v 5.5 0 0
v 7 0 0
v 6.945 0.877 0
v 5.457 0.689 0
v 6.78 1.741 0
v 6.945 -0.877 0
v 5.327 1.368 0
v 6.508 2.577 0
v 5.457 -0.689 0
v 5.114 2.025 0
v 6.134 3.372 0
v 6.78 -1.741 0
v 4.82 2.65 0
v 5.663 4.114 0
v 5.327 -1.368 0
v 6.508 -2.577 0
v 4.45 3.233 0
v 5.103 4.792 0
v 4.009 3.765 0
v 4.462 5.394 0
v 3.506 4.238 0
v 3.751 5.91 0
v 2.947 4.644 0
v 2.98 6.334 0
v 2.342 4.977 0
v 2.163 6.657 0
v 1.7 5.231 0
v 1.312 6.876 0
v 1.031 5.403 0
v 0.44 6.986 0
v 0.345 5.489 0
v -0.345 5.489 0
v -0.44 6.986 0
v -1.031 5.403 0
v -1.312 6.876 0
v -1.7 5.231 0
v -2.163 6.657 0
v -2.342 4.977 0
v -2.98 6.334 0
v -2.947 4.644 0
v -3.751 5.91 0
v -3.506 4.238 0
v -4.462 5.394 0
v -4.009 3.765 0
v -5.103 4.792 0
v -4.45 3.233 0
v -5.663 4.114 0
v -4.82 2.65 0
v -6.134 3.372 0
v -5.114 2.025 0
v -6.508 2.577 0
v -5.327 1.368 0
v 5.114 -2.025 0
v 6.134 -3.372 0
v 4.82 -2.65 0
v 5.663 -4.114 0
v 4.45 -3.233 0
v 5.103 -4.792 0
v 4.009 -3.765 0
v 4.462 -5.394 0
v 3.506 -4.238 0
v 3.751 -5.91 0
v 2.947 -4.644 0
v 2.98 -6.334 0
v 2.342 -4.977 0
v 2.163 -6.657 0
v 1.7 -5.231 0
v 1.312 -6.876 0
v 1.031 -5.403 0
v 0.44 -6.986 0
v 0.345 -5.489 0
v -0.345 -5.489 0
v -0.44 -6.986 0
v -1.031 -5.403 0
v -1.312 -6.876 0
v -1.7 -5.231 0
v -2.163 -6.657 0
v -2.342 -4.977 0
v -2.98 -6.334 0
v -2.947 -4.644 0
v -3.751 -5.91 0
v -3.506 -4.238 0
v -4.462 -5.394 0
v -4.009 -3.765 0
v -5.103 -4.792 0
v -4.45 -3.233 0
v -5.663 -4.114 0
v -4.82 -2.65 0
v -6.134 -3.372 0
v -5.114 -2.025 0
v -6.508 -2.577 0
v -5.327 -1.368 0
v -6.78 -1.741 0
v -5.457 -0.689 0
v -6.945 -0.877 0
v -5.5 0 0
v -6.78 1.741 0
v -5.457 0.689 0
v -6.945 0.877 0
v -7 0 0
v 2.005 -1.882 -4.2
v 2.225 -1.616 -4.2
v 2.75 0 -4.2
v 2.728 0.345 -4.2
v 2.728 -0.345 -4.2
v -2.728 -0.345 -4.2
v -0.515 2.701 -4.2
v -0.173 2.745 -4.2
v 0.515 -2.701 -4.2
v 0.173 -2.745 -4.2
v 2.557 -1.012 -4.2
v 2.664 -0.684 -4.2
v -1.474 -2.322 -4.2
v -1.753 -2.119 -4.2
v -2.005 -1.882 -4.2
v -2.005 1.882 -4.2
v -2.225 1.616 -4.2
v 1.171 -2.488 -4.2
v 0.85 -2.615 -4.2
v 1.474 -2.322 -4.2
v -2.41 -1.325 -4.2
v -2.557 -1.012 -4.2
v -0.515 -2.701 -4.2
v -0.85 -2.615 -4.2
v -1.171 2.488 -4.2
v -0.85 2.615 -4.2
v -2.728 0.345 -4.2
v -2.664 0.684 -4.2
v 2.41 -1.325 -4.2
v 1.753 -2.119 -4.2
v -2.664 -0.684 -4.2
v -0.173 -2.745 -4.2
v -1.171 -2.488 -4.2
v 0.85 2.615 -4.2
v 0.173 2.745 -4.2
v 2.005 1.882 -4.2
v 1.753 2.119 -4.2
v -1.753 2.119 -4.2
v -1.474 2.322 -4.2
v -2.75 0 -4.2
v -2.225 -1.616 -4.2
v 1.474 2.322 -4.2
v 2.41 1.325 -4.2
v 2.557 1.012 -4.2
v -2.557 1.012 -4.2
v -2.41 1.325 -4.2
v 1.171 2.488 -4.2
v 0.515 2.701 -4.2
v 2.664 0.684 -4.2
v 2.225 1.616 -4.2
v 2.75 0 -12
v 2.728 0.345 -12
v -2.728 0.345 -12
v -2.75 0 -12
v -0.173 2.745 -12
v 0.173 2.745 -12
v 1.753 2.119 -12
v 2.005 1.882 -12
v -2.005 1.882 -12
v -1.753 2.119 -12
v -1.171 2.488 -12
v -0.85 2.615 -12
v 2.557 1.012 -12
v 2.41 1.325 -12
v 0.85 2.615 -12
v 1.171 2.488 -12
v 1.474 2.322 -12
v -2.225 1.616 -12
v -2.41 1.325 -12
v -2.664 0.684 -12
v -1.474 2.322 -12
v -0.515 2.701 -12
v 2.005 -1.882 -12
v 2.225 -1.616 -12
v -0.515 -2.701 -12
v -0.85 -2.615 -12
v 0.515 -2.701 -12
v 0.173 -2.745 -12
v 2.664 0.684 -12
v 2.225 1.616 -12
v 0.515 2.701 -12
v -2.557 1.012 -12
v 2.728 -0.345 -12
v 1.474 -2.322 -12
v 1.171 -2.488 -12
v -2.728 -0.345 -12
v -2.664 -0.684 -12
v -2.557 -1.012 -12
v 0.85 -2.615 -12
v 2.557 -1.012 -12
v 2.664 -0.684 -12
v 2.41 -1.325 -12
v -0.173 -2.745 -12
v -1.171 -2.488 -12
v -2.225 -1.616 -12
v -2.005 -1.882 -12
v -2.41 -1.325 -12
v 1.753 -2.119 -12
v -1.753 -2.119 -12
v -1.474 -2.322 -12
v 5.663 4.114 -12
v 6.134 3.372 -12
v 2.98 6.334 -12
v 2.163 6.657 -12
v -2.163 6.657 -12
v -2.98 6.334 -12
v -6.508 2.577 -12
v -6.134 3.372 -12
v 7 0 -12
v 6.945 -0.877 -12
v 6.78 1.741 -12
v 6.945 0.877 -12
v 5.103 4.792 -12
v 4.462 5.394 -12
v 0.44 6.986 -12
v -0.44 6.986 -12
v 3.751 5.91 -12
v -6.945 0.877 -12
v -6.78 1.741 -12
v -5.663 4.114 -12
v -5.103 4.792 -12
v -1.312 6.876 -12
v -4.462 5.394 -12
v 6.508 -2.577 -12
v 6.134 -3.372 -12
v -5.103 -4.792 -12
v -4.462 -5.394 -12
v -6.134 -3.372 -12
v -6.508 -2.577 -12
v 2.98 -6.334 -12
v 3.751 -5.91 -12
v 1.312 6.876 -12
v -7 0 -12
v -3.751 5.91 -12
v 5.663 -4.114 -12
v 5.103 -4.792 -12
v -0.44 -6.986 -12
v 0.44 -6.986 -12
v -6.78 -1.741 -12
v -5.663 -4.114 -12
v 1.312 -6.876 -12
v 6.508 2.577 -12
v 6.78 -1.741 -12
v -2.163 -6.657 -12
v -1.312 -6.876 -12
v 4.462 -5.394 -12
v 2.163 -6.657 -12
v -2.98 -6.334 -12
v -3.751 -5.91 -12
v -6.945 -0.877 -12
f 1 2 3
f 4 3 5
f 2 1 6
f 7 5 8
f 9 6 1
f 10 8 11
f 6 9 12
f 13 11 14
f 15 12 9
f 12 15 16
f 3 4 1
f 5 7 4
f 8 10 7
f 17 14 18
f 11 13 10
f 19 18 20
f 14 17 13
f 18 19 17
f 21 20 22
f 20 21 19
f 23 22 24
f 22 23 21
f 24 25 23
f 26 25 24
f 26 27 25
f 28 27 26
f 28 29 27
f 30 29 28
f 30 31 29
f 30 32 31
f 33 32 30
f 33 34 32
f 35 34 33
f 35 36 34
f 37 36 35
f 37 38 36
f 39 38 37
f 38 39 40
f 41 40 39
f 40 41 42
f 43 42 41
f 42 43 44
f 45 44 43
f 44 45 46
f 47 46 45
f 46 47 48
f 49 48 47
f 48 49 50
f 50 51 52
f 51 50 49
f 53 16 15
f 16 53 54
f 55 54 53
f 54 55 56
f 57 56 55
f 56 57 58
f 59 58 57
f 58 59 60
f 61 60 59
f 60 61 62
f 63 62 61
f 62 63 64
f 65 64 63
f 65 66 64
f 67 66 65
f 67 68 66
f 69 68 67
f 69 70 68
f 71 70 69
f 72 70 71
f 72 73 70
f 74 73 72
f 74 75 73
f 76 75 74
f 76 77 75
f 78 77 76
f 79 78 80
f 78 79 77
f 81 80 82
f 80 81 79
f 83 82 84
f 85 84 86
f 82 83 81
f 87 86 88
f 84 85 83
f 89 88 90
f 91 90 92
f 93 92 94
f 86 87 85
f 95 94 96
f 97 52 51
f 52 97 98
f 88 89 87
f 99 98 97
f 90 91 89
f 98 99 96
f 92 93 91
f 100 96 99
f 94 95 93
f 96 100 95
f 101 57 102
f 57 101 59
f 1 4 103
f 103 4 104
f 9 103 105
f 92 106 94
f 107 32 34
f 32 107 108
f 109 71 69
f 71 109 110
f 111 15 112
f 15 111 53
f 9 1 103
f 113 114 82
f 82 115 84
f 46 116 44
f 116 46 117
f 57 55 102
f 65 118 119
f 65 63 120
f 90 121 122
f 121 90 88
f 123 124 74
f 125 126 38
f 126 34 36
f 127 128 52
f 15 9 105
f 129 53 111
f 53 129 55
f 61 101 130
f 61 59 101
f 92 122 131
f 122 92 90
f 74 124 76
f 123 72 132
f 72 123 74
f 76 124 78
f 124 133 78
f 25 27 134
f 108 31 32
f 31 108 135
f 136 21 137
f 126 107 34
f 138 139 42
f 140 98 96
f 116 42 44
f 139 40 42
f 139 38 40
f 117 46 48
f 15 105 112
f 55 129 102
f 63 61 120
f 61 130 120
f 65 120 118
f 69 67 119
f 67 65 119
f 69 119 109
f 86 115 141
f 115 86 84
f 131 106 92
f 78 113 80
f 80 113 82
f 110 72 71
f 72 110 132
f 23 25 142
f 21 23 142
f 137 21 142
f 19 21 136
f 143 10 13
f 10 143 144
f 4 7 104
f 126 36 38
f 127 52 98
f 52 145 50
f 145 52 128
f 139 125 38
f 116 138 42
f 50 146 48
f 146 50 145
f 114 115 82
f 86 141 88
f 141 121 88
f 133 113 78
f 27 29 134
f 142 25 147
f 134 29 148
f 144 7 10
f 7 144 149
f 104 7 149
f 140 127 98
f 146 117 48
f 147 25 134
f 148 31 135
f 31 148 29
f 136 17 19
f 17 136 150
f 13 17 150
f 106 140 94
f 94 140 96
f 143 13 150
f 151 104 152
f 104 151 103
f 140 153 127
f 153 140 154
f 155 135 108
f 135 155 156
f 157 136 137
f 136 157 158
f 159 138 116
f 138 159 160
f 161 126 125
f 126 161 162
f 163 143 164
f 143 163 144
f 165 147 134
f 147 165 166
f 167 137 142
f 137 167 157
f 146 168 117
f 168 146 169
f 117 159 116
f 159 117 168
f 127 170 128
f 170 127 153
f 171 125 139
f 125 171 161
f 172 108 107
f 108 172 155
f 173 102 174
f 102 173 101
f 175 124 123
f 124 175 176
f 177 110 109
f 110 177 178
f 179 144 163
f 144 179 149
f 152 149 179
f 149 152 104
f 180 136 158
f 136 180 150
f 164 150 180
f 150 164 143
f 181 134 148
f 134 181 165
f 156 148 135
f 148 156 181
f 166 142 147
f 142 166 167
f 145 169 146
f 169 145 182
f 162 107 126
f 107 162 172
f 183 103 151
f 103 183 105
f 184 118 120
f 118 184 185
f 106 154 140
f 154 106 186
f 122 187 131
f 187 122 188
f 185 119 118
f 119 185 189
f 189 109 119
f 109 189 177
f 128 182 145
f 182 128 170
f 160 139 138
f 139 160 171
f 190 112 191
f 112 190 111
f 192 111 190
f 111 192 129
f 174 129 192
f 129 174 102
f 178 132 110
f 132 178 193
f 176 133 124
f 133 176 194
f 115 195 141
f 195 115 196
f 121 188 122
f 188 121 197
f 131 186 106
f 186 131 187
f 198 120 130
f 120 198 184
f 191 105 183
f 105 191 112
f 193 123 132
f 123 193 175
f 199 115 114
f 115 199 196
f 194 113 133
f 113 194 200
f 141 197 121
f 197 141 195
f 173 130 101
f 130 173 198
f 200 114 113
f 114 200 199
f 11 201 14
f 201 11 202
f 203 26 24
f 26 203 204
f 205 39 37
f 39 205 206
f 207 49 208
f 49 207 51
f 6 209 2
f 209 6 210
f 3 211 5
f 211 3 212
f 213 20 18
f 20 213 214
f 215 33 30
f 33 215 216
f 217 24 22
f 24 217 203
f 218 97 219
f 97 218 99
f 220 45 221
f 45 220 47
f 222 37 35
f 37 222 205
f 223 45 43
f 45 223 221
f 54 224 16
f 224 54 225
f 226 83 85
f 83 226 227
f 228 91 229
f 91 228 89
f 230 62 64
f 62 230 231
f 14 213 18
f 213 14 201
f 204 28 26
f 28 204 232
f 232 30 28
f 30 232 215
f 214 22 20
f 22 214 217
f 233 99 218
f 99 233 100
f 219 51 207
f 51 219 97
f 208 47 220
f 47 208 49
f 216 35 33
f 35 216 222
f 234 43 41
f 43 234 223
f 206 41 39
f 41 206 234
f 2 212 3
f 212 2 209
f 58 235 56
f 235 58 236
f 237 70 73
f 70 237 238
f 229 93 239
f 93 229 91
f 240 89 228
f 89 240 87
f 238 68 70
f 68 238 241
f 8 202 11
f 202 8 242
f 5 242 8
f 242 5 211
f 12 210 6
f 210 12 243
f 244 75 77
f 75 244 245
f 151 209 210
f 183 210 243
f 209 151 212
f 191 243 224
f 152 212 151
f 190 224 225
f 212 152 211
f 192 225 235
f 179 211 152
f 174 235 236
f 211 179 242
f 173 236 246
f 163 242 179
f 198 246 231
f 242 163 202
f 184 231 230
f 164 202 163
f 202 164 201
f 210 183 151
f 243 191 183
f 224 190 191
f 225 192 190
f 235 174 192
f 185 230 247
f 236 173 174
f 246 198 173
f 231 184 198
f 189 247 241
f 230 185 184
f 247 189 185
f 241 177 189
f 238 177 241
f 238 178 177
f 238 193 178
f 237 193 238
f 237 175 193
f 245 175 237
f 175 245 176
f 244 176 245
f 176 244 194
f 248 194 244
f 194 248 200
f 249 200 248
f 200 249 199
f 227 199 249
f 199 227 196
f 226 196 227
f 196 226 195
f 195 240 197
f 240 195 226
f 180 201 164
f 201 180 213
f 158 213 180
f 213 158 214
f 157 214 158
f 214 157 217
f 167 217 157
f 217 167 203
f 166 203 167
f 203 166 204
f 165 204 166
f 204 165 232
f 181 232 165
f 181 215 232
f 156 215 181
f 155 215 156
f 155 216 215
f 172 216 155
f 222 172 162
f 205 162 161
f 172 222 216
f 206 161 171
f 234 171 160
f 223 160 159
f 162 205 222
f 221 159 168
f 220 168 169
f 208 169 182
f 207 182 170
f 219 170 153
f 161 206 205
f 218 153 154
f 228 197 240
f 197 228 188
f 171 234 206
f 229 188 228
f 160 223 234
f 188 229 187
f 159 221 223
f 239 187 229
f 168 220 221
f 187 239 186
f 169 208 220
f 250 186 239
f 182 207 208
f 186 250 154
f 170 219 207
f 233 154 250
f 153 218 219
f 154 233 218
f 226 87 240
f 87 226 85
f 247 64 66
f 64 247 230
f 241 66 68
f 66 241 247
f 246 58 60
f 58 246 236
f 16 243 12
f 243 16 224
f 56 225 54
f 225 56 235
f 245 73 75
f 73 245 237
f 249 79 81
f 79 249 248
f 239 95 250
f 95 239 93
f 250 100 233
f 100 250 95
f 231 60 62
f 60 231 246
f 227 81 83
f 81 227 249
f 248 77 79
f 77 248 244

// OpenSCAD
$fn = 50;


difference() {
	union() {
		translate(v = [0, 0, -12.0000000000]) {
			cylinder(h = 12, r = 7.0000000000);
		}
	}
	union() {
		translate(v = [0, 0, 0]) {
			rotate(a = [0, 0, 0]) {
				difference() {
					union() {
						translate(v = [0, 0, -15.0000000000]) {
							cylinder(h = 15, r = 2.2500000000);
						}
						translate(v = [0, 0, -4.2000000000]) {
							cylinder(h = 4.2000000000, r1 = 2.7500000000, r2 = 5.5000000000);
						}
						translate(v = [0, 0, -15.0000000000]) {
							cylinder(h = 15, r = 2.7500000000);
						}
						translate(v = [0, 0, -15.0000000000]) {
							cylinder(h = 15, r = 2.2500000000);
						}
					}
					union();
				}
			}
		}
	}
}
